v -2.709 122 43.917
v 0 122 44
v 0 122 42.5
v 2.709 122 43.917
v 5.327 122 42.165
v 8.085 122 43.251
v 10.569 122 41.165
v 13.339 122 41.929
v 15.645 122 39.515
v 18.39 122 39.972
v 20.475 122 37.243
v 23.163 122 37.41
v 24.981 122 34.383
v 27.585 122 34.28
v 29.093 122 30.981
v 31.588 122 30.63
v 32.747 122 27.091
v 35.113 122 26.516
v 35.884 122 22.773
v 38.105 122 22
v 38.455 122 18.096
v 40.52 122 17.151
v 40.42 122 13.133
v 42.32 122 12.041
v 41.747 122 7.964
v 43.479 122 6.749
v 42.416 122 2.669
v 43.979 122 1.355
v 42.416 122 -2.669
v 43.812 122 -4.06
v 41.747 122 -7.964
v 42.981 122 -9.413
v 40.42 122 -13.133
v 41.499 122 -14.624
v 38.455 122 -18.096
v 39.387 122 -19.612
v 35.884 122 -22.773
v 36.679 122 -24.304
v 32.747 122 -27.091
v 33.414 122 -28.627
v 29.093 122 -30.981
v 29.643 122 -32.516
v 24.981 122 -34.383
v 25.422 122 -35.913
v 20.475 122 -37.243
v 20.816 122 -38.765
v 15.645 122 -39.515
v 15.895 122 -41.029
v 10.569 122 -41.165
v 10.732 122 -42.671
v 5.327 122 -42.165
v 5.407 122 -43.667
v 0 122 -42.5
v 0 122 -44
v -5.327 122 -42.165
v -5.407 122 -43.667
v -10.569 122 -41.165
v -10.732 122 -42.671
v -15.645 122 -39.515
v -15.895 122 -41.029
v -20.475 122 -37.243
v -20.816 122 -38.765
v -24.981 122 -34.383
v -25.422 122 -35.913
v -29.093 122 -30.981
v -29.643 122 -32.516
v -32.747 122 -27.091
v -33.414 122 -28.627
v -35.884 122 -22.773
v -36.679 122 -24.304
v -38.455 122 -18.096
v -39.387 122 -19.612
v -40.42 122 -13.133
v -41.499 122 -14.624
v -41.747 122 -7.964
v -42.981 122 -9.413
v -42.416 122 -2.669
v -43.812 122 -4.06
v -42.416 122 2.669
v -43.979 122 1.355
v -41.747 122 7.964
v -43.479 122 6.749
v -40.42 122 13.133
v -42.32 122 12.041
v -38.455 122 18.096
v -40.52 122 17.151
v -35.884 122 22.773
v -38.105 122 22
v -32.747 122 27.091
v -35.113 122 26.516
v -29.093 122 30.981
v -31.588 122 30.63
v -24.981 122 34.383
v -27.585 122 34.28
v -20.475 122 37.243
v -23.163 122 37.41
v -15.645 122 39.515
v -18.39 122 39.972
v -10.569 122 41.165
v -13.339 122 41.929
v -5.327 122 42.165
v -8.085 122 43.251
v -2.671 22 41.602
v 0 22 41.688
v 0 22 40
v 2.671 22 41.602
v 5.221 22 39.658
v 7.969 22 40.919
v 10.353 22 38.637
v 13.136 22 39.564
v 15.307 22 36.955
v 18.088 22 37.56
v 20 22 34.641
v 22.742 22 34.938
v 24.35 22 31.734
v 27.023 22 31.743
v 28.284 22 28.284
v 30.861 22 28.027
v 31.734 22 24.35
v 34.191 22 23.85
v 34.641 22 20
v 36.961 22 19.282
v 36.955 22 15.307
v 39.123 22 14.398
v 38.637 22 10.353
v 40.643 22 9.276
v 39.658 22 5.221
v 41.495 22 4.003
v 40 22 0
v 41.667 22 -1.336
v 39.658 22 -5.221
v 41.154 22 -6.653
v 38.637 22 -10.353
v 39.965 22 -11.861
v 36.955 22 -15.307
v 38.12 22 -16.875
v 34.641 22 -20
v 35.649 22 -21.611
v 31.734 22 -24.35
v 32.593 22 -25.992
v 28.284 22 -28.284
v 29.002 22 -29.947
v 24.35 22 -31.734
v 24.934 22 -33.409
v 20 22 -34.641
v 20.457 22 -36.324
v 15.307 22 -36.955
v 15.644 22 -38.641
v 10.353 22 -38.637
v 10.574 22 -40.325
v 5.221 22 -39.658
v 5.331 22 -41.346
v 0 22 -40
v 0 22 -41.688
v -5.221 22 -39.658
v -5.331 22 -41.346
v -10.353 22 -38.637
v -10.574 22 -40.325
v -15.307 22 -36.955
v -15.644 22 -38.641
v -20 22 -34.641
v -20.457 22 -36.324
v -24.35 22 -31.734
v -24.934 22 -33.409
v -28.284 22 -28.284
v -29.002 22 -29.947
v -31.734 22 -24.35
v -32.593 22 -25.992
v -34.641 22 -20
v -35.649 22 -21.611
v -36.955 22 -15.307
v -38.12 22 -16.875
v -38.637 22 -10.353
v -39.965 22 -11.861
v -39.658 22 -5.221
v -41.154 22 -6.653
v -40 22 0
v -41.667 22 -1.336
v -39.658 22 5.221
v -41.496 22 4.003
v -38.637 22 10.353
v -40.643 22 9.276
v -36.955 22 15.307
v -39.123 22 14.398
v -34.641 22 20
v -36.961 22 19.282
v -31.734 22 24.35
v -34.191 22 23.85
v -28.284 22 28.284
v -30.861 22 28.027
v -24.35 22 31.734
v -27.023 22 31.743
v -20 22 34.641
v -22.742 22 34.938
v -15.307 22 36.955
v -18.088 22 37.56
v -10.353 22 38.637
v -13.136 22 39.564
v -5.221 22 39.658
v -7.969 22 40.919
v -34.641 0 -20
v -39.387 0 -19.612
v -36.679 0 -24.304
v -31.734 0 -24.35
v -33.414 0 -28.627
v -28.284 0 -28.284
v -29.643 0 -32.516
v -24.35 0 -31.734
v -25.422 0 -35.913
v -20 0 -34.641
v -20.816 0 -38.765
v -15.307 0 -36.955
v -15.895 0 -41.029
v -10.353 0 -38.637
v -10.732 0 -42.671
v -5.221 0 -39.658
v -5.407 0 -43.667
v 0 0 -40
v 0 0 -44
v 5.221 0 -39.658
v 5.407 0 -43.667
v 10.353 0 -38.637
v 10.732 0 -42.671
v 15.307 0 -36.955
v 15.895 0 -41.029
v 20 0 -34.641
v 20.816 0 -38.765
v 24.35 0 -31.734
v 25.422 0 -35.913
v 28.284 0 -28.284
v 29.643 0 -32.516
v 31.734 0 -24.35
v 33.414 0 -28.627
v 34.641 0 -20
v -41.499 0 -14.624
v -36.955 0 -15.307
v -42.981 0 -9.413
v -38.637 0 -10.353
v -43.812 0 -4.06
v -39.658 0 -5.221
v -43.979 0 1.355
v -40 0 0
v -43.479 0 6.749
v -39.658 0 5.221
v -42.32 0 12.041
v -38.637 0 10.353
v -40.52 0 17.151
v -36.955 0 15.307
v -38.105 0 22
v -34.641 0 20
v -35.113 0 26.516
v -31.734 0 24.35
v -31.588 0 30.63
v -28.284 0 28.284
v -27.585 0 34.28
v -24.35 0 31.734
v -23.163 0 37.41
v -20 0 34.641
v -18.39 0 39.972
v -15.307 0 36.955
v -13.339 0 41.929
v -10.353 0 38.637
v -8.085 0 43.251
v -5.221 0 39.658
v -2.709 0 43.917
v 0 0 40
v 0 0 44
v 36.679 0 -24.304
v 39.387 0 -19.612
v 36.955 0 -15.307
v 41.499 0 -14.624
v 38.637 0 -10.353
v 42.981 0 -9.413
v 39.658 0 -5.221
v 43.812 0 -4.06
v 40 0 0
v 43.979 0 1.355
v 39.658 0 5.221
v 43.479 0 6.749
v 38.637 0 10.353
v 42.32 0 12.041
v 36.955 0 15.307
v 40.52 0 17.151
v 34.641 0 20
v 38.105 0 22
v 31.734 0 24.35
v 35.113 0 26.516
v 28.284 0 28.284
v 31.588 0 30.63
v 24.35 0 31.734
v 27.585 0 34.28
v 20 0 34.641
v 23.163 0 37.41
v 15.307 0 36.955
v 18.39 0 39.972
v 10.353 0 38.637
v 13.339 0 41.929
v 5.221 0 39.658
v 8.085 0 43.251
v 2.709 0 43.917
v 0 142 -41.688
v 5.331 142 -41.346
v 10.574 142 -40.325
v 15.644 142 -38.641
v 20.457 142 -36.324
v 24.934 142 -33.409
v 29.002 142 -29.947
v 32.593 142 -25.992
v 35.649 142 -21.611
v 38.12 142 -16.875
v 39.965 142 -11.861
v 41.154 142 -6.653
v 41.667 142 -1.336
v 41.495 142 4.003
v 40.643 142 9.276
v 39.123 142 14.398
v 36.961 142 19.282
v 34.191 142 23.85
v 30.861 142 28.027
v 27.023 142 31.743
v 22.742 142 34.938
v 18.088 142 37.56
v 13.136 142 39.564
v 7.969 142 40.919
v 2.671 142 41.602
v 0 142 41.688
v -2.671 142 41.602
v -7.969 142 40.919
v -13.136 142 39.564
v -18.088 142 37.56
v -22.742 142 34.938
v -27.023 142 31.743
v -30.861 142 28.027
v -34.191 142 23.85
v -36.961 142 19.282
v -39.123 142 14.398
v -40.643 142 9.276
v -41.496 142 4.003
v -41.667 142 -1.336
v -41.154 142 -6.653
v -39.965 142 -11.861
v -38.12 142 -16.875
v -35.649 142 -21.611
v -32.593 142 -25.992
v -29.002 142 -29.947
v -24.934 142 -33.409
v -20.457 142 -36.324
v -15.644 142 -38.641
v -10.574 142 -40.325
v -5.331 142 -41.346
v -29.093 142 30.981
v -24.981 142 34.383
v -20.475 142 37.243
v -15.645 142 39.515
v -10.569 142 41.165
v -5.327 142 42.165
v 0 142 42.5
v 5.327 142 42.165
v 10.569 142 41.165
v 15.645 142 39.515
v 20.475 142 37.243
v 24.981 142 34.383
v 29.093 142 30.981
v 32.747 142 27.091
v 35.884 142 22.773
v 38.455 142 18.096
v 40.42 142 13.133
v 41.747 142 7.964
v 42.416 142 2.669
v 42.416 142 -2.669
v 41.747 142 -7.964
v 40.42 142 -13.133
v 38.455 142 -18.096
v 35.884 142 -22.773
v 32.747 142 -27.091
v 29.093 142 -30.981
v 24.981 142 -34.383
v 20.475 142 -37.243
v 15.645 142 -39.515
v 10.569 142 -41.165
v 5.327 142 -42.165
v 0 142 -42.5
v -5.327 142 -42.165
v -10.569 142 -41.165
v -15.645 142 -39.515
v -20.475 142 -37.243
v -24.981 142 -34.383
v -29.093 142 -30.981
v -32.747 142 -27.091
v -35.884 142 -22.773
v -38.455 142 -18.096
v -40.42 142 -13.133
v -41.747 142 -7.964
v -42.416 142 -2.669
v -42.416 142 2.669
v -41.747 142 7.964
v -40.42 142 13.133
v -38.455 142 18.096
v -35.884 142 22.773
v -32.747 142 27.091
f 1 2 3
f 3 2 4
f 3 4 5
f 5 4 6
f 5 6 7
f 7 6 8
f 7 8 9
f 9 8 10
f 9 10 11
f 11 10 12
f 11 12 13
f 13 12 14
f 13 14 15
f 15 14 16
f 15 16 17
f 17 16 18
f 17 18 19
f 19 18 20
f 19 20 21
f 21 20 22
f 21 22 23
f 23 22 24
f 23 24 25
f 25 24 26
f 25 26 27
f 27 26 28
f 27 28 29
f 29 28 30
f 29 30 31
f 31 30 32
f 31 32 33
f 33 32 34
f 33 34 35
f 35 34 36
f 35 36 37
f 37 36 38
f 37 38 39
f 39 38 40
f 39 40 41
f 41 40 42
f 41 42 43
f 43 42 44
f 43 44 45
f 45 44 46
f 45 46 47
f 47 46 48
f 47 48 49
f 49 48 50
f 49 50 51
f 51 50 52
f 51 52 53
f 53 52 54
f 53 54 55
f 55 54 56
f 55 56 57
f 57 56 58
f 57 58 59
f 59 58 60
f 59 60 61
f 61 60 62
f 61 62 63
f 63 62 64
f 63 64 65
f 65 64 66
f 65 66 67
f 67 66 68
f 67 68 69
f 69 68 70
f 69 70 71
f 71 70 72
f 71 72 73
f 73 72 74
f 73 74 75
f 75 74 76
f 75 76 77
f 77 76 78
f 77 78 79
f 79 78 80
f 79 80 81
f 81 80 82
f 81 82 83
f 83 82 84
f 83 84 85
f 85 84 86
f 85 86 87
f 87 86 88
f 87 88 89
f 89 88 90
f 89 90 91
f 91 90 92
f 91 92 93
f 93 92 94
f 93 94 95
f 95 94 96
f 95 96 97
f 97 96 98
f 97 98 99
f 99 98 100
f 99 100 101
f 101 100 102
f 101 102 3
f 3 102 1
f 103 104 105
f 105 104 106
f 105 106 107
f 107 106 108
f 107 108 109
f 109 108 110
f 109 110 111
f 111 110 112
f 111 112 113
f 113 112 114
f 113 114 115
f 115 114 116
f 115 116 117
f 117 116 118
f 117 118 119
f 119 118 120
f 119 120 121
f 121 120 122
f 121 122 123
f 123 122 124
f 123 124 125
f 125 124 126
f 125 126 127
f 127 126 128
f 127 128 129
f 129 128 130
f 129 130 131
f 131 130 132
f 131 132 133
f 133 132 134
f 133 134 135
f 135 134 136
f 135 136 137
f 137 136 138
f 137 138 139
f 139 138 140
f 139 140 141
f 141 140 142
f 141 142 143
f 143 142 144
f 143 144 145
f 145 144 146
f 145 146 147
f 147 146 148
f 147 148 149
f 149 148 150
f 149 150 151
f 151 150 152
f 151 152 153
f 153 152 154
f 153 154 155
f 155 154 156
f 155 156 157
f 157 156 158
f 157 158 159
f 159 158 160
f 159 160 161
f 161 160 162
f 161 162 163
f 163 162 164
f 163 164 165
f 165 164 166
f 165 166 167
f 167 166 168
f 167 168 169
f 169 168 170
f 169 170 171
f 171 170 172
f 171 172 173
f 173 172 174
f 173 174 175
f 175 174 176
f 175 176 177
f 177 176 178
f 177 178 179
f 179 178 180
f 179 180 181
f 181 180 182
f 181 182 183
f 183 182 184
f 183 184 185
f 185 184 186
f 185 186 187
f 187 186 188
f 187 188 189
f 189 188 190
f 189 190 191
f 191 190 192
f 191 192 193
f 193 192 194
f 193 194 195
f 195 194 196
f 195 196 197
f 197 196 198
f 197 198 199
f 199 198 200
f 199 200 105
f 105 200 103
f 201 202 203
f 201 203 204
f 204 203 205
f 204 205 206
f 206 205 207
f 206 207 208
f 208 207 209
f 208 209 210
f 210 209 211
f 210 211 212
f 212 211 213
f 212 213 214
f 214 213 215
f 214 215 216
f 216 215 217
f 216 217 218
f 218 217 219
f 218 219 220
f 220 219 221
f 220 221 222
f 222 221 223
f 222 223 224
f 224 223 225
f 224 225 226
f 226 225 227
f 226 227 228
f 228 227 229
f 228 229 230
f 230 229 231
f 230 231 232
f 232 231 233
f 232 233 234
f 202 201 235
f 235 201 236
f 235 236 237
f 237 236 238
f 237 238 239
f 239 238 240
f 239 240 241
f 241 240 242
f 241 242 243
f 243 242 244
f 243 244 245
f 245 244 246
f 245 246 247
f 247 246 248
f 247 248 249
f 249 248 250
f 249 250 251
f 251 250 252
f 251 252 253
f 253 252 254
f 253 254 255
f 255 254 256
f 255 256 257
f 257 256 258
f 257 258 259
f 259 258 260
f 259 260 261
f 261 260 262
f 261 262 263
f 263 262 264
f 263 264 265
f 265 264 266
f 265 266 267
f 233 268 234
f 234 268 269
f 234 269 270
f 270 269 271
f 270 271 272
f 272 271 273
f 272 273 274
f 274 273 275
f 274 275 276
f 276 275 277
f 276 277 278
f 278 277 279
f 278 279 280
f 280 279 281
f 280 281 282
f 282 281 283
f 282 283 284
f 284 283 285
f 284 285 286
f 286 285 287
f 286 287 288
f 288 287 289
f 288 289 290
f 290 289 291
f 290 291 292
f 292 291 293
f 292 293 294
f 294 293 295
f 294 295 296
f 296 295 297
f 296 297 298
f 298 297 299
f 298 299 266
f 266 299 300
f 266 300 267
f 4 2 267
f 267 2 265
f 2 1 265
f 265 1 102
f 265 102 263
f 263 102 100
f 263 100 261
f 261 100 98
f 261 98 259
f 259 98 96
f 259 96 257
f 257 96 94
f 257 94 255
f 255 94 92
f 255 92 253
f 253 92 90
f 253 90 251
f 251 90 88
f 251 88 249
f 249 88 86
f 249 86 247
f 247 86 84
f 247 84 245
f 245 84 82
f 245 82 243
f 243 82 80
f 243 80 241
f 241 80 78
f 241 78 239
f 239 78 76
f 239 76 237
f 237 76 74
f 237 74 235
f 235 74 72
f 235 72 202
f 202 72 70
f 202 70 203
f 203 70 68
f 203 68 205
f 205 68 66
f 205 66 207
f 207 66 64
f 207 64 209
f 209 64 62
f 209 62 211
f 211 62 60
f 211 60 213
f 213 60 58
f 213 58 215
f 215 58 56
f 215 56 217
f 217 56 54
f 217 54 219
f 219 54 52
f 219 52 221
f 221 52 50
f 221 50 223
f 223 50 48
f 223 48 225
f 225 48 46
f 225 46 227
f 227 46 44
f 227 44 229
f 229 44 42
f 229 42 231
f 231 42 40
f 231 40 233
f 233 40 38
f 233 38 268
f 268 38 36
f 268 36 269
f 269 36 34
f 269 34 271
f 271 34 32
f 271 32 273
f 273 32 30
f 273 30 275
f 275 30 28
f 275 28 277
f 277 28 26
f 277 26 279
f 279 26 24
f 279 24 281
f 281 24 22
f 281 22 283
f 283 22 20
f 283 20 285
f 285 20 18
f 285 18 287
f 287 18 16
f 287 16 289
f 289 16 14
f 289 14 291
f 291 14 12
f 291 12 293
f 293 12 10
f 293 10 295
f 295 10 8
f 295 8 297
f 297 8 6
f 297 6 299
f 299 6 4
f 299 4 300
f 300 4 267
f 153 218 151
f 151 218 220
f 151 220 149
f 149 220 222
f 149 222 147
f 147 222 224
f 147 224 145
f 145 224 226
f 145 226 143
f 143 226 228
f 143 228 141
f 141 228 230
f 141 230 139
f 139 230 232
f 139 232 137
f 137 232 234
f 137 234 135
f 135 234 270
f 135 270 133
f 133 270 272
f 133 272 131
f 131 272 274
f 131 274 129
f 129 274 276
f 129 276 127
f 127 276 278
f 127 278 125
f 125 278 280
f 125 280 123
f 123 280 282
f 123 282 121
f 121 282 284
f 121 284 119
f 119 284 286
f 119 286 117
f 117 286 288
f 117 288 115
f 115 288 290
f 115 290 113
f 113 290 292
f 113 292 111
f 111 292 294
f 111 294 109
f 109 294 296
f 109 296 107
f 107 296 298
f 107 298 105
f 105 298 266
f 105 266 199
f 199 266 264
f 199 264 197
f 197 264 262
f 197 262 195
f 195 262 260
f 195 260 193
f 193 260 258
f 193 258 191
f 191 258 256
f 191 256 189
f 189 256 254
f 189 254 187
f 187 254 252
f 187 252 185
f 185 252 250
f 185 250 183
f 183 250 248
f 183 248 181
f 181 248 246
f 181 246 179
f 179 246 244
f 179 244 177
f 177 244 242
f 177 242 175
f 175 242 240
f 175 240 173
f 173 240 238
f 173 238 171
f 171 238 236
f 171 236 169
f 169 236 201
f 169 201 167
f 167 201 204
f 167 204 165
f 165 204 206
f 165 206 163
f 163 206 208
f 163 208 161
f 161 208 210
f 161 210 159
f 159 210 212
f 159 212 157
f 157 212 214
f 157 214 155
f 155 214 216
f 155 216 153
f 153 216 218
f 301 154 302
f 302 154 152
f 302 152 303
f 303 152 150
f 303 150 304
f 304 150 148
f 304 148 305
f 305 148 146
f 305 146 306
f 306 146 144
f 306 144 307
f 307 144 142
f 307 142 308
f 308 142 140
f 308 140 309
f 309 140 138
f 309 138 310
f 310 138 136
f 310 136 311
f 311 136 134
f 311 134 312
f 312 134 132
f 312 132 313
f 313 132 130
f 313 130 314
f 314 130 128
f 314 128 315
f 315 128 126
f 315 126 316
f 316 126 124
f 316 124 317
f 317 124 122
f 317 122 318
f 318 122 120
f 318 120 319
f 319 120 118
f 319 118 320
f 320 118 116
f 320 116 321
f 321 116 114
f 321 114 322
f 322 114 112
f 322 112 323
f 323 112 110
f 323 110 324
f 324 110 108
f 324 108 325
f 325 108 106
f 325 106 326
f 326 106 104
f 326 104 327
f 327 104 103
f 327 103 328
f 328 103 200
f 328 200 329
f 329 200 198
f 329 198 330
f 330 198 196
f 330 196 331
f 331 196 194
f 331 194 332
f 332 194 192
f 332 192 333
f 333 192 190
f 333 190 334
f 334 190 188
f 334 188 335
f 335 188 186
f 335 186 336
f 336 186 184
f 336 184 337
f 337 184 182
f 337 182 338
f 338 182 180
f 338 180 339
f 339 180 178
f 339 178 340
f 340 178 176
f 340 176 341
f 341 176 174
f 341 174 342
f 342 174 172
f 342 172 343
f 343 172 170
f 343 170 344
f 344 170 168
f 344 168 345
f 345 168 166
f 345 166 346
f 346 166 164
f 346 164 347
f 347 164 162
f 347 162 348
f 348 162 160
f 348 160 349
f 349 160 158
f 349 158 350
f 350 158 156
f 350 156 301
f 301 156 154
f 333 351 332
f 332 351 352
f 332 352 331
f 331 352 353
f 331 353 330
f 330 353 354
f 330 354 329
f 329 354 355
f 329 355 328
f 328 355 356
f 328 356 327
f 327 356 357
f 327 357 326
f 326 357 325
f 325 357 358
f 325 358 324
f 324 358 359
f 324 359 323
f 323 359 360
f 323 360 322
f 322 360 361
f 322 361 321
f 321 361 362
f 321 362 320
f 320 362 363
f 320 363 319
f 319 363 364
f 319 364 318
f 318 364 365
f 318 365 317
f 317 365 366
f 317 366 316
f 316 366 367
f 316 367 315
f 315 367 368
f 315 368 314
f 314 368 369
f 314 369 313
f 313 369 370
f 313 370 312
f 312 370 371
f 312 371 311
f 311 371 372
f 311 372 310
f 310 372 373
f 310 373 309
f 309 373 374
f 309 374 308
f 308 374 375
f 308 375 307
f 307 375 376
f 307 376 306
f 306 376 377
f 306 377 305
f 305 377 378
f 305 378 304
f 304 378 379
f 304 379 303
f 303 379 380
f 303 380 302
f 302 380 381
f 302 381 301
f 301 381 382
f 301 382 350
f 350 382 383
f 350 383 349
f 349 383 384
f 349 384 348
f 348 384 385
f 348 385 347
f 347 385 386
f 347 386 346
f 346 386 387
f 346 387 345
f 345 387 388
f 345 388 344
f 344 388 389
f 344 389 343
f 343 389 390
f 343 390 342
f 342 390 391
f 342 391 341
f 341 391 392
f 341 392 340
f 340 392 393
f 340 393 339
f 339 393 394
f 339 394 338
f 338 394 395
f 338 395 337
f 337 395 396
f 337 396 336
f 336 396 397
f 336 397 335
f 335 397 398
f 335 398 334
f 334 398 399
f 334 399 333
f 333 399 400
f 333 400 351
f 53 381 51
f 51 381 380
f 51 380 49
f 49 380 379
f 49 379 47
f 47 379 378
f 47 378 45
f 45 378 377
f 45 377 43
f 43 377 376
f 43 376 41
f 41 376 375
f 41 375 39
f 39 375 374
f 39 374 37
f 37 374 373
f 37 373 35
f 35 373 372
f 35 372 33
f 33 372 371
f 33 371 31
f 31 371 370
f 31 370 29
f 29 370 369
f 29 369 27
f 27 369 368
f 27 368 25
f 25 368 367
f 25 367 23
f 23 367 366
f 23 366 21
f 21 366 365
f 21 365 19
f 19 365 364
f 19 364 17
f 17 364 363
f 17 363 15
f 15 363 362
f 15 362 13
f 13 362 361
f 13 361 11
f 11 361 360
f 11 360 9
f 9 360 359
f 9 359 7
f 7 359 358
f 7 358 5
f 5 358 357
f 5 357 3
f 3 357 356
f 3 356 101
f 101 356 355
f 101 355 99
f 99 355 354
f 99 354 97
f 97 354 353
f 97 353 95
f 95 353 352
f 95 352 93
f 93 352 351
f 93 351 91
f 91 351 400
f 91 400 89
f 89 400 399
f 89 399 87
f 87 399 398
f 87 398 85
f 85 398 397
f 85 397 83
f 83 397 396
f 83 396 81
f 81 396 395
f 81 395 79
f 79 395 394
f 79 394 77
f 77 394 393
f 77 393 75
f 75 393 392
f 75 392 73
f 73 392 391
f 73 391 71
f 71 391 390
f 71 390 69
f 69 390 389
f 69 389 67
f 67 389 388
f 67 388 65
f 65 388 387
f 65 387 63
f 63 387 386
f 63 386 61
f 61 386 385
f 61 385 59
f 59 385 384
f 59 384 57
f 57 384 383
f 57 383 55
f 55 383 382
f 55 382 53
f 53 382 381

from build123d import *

# Parameters (mm, degrees)
SKETCH1_R           = 44
SKETCH1_R_2         = 40
BOSS_EXTRUDE1_DEPTH = 22
SKETCH2_R           = 44
SKETCH2_R_2         = 41.68814
BOSS_EXTRUDE2_DEPTH = 100
SKETCH3_R           = 42.5
SKETCH3_R_2         = 41.68814
BOSS_EXTRUDE3_DEPTH = 20


with BuildPart() as part:
    # Sketch1 → Boss-Extrude1 (new body)
    with BuildSketch(Plane(origin=(0, 0, 0), x_dir=(1, 0, 0), z_dir=(0, 1, 0))):
        Circle(SKETCH1_R)
        Circle(SKETCH1_R_2, mode=Mode.SUBTRACT)
    extrude(amount=BOSS_EXTRUDE1_DEPTH)

    # Sketch2 → Boss-Extrude2 (add)
    with BuildSketch(Plane(origin=(0, 22, 0), x_dir=(1, 0, 0), z_dir=(0, 1, 0))):
        Circle(SKETCH2_R)
        Circle(SKETCH2_R_2, mode=Mode.SUBTRACT)
    extrude(amount=BOSS_EXTRUDE2_DEPTH)

    # Sketch3 → Boss-Extrude3 (add)
    with BuildSketch(Plane(origin=(0, 122, 0), x_dir=(1, 0, 0), z_dir=(0, 1, 0))):
        Circle(SKETCH3_R)
        Circle(SKETCH3_R_2, mode=Mode.SUBTRACT)
    extrude(amount=BOSS_EXTRUDE3_DEPTH)


solid = part.part
